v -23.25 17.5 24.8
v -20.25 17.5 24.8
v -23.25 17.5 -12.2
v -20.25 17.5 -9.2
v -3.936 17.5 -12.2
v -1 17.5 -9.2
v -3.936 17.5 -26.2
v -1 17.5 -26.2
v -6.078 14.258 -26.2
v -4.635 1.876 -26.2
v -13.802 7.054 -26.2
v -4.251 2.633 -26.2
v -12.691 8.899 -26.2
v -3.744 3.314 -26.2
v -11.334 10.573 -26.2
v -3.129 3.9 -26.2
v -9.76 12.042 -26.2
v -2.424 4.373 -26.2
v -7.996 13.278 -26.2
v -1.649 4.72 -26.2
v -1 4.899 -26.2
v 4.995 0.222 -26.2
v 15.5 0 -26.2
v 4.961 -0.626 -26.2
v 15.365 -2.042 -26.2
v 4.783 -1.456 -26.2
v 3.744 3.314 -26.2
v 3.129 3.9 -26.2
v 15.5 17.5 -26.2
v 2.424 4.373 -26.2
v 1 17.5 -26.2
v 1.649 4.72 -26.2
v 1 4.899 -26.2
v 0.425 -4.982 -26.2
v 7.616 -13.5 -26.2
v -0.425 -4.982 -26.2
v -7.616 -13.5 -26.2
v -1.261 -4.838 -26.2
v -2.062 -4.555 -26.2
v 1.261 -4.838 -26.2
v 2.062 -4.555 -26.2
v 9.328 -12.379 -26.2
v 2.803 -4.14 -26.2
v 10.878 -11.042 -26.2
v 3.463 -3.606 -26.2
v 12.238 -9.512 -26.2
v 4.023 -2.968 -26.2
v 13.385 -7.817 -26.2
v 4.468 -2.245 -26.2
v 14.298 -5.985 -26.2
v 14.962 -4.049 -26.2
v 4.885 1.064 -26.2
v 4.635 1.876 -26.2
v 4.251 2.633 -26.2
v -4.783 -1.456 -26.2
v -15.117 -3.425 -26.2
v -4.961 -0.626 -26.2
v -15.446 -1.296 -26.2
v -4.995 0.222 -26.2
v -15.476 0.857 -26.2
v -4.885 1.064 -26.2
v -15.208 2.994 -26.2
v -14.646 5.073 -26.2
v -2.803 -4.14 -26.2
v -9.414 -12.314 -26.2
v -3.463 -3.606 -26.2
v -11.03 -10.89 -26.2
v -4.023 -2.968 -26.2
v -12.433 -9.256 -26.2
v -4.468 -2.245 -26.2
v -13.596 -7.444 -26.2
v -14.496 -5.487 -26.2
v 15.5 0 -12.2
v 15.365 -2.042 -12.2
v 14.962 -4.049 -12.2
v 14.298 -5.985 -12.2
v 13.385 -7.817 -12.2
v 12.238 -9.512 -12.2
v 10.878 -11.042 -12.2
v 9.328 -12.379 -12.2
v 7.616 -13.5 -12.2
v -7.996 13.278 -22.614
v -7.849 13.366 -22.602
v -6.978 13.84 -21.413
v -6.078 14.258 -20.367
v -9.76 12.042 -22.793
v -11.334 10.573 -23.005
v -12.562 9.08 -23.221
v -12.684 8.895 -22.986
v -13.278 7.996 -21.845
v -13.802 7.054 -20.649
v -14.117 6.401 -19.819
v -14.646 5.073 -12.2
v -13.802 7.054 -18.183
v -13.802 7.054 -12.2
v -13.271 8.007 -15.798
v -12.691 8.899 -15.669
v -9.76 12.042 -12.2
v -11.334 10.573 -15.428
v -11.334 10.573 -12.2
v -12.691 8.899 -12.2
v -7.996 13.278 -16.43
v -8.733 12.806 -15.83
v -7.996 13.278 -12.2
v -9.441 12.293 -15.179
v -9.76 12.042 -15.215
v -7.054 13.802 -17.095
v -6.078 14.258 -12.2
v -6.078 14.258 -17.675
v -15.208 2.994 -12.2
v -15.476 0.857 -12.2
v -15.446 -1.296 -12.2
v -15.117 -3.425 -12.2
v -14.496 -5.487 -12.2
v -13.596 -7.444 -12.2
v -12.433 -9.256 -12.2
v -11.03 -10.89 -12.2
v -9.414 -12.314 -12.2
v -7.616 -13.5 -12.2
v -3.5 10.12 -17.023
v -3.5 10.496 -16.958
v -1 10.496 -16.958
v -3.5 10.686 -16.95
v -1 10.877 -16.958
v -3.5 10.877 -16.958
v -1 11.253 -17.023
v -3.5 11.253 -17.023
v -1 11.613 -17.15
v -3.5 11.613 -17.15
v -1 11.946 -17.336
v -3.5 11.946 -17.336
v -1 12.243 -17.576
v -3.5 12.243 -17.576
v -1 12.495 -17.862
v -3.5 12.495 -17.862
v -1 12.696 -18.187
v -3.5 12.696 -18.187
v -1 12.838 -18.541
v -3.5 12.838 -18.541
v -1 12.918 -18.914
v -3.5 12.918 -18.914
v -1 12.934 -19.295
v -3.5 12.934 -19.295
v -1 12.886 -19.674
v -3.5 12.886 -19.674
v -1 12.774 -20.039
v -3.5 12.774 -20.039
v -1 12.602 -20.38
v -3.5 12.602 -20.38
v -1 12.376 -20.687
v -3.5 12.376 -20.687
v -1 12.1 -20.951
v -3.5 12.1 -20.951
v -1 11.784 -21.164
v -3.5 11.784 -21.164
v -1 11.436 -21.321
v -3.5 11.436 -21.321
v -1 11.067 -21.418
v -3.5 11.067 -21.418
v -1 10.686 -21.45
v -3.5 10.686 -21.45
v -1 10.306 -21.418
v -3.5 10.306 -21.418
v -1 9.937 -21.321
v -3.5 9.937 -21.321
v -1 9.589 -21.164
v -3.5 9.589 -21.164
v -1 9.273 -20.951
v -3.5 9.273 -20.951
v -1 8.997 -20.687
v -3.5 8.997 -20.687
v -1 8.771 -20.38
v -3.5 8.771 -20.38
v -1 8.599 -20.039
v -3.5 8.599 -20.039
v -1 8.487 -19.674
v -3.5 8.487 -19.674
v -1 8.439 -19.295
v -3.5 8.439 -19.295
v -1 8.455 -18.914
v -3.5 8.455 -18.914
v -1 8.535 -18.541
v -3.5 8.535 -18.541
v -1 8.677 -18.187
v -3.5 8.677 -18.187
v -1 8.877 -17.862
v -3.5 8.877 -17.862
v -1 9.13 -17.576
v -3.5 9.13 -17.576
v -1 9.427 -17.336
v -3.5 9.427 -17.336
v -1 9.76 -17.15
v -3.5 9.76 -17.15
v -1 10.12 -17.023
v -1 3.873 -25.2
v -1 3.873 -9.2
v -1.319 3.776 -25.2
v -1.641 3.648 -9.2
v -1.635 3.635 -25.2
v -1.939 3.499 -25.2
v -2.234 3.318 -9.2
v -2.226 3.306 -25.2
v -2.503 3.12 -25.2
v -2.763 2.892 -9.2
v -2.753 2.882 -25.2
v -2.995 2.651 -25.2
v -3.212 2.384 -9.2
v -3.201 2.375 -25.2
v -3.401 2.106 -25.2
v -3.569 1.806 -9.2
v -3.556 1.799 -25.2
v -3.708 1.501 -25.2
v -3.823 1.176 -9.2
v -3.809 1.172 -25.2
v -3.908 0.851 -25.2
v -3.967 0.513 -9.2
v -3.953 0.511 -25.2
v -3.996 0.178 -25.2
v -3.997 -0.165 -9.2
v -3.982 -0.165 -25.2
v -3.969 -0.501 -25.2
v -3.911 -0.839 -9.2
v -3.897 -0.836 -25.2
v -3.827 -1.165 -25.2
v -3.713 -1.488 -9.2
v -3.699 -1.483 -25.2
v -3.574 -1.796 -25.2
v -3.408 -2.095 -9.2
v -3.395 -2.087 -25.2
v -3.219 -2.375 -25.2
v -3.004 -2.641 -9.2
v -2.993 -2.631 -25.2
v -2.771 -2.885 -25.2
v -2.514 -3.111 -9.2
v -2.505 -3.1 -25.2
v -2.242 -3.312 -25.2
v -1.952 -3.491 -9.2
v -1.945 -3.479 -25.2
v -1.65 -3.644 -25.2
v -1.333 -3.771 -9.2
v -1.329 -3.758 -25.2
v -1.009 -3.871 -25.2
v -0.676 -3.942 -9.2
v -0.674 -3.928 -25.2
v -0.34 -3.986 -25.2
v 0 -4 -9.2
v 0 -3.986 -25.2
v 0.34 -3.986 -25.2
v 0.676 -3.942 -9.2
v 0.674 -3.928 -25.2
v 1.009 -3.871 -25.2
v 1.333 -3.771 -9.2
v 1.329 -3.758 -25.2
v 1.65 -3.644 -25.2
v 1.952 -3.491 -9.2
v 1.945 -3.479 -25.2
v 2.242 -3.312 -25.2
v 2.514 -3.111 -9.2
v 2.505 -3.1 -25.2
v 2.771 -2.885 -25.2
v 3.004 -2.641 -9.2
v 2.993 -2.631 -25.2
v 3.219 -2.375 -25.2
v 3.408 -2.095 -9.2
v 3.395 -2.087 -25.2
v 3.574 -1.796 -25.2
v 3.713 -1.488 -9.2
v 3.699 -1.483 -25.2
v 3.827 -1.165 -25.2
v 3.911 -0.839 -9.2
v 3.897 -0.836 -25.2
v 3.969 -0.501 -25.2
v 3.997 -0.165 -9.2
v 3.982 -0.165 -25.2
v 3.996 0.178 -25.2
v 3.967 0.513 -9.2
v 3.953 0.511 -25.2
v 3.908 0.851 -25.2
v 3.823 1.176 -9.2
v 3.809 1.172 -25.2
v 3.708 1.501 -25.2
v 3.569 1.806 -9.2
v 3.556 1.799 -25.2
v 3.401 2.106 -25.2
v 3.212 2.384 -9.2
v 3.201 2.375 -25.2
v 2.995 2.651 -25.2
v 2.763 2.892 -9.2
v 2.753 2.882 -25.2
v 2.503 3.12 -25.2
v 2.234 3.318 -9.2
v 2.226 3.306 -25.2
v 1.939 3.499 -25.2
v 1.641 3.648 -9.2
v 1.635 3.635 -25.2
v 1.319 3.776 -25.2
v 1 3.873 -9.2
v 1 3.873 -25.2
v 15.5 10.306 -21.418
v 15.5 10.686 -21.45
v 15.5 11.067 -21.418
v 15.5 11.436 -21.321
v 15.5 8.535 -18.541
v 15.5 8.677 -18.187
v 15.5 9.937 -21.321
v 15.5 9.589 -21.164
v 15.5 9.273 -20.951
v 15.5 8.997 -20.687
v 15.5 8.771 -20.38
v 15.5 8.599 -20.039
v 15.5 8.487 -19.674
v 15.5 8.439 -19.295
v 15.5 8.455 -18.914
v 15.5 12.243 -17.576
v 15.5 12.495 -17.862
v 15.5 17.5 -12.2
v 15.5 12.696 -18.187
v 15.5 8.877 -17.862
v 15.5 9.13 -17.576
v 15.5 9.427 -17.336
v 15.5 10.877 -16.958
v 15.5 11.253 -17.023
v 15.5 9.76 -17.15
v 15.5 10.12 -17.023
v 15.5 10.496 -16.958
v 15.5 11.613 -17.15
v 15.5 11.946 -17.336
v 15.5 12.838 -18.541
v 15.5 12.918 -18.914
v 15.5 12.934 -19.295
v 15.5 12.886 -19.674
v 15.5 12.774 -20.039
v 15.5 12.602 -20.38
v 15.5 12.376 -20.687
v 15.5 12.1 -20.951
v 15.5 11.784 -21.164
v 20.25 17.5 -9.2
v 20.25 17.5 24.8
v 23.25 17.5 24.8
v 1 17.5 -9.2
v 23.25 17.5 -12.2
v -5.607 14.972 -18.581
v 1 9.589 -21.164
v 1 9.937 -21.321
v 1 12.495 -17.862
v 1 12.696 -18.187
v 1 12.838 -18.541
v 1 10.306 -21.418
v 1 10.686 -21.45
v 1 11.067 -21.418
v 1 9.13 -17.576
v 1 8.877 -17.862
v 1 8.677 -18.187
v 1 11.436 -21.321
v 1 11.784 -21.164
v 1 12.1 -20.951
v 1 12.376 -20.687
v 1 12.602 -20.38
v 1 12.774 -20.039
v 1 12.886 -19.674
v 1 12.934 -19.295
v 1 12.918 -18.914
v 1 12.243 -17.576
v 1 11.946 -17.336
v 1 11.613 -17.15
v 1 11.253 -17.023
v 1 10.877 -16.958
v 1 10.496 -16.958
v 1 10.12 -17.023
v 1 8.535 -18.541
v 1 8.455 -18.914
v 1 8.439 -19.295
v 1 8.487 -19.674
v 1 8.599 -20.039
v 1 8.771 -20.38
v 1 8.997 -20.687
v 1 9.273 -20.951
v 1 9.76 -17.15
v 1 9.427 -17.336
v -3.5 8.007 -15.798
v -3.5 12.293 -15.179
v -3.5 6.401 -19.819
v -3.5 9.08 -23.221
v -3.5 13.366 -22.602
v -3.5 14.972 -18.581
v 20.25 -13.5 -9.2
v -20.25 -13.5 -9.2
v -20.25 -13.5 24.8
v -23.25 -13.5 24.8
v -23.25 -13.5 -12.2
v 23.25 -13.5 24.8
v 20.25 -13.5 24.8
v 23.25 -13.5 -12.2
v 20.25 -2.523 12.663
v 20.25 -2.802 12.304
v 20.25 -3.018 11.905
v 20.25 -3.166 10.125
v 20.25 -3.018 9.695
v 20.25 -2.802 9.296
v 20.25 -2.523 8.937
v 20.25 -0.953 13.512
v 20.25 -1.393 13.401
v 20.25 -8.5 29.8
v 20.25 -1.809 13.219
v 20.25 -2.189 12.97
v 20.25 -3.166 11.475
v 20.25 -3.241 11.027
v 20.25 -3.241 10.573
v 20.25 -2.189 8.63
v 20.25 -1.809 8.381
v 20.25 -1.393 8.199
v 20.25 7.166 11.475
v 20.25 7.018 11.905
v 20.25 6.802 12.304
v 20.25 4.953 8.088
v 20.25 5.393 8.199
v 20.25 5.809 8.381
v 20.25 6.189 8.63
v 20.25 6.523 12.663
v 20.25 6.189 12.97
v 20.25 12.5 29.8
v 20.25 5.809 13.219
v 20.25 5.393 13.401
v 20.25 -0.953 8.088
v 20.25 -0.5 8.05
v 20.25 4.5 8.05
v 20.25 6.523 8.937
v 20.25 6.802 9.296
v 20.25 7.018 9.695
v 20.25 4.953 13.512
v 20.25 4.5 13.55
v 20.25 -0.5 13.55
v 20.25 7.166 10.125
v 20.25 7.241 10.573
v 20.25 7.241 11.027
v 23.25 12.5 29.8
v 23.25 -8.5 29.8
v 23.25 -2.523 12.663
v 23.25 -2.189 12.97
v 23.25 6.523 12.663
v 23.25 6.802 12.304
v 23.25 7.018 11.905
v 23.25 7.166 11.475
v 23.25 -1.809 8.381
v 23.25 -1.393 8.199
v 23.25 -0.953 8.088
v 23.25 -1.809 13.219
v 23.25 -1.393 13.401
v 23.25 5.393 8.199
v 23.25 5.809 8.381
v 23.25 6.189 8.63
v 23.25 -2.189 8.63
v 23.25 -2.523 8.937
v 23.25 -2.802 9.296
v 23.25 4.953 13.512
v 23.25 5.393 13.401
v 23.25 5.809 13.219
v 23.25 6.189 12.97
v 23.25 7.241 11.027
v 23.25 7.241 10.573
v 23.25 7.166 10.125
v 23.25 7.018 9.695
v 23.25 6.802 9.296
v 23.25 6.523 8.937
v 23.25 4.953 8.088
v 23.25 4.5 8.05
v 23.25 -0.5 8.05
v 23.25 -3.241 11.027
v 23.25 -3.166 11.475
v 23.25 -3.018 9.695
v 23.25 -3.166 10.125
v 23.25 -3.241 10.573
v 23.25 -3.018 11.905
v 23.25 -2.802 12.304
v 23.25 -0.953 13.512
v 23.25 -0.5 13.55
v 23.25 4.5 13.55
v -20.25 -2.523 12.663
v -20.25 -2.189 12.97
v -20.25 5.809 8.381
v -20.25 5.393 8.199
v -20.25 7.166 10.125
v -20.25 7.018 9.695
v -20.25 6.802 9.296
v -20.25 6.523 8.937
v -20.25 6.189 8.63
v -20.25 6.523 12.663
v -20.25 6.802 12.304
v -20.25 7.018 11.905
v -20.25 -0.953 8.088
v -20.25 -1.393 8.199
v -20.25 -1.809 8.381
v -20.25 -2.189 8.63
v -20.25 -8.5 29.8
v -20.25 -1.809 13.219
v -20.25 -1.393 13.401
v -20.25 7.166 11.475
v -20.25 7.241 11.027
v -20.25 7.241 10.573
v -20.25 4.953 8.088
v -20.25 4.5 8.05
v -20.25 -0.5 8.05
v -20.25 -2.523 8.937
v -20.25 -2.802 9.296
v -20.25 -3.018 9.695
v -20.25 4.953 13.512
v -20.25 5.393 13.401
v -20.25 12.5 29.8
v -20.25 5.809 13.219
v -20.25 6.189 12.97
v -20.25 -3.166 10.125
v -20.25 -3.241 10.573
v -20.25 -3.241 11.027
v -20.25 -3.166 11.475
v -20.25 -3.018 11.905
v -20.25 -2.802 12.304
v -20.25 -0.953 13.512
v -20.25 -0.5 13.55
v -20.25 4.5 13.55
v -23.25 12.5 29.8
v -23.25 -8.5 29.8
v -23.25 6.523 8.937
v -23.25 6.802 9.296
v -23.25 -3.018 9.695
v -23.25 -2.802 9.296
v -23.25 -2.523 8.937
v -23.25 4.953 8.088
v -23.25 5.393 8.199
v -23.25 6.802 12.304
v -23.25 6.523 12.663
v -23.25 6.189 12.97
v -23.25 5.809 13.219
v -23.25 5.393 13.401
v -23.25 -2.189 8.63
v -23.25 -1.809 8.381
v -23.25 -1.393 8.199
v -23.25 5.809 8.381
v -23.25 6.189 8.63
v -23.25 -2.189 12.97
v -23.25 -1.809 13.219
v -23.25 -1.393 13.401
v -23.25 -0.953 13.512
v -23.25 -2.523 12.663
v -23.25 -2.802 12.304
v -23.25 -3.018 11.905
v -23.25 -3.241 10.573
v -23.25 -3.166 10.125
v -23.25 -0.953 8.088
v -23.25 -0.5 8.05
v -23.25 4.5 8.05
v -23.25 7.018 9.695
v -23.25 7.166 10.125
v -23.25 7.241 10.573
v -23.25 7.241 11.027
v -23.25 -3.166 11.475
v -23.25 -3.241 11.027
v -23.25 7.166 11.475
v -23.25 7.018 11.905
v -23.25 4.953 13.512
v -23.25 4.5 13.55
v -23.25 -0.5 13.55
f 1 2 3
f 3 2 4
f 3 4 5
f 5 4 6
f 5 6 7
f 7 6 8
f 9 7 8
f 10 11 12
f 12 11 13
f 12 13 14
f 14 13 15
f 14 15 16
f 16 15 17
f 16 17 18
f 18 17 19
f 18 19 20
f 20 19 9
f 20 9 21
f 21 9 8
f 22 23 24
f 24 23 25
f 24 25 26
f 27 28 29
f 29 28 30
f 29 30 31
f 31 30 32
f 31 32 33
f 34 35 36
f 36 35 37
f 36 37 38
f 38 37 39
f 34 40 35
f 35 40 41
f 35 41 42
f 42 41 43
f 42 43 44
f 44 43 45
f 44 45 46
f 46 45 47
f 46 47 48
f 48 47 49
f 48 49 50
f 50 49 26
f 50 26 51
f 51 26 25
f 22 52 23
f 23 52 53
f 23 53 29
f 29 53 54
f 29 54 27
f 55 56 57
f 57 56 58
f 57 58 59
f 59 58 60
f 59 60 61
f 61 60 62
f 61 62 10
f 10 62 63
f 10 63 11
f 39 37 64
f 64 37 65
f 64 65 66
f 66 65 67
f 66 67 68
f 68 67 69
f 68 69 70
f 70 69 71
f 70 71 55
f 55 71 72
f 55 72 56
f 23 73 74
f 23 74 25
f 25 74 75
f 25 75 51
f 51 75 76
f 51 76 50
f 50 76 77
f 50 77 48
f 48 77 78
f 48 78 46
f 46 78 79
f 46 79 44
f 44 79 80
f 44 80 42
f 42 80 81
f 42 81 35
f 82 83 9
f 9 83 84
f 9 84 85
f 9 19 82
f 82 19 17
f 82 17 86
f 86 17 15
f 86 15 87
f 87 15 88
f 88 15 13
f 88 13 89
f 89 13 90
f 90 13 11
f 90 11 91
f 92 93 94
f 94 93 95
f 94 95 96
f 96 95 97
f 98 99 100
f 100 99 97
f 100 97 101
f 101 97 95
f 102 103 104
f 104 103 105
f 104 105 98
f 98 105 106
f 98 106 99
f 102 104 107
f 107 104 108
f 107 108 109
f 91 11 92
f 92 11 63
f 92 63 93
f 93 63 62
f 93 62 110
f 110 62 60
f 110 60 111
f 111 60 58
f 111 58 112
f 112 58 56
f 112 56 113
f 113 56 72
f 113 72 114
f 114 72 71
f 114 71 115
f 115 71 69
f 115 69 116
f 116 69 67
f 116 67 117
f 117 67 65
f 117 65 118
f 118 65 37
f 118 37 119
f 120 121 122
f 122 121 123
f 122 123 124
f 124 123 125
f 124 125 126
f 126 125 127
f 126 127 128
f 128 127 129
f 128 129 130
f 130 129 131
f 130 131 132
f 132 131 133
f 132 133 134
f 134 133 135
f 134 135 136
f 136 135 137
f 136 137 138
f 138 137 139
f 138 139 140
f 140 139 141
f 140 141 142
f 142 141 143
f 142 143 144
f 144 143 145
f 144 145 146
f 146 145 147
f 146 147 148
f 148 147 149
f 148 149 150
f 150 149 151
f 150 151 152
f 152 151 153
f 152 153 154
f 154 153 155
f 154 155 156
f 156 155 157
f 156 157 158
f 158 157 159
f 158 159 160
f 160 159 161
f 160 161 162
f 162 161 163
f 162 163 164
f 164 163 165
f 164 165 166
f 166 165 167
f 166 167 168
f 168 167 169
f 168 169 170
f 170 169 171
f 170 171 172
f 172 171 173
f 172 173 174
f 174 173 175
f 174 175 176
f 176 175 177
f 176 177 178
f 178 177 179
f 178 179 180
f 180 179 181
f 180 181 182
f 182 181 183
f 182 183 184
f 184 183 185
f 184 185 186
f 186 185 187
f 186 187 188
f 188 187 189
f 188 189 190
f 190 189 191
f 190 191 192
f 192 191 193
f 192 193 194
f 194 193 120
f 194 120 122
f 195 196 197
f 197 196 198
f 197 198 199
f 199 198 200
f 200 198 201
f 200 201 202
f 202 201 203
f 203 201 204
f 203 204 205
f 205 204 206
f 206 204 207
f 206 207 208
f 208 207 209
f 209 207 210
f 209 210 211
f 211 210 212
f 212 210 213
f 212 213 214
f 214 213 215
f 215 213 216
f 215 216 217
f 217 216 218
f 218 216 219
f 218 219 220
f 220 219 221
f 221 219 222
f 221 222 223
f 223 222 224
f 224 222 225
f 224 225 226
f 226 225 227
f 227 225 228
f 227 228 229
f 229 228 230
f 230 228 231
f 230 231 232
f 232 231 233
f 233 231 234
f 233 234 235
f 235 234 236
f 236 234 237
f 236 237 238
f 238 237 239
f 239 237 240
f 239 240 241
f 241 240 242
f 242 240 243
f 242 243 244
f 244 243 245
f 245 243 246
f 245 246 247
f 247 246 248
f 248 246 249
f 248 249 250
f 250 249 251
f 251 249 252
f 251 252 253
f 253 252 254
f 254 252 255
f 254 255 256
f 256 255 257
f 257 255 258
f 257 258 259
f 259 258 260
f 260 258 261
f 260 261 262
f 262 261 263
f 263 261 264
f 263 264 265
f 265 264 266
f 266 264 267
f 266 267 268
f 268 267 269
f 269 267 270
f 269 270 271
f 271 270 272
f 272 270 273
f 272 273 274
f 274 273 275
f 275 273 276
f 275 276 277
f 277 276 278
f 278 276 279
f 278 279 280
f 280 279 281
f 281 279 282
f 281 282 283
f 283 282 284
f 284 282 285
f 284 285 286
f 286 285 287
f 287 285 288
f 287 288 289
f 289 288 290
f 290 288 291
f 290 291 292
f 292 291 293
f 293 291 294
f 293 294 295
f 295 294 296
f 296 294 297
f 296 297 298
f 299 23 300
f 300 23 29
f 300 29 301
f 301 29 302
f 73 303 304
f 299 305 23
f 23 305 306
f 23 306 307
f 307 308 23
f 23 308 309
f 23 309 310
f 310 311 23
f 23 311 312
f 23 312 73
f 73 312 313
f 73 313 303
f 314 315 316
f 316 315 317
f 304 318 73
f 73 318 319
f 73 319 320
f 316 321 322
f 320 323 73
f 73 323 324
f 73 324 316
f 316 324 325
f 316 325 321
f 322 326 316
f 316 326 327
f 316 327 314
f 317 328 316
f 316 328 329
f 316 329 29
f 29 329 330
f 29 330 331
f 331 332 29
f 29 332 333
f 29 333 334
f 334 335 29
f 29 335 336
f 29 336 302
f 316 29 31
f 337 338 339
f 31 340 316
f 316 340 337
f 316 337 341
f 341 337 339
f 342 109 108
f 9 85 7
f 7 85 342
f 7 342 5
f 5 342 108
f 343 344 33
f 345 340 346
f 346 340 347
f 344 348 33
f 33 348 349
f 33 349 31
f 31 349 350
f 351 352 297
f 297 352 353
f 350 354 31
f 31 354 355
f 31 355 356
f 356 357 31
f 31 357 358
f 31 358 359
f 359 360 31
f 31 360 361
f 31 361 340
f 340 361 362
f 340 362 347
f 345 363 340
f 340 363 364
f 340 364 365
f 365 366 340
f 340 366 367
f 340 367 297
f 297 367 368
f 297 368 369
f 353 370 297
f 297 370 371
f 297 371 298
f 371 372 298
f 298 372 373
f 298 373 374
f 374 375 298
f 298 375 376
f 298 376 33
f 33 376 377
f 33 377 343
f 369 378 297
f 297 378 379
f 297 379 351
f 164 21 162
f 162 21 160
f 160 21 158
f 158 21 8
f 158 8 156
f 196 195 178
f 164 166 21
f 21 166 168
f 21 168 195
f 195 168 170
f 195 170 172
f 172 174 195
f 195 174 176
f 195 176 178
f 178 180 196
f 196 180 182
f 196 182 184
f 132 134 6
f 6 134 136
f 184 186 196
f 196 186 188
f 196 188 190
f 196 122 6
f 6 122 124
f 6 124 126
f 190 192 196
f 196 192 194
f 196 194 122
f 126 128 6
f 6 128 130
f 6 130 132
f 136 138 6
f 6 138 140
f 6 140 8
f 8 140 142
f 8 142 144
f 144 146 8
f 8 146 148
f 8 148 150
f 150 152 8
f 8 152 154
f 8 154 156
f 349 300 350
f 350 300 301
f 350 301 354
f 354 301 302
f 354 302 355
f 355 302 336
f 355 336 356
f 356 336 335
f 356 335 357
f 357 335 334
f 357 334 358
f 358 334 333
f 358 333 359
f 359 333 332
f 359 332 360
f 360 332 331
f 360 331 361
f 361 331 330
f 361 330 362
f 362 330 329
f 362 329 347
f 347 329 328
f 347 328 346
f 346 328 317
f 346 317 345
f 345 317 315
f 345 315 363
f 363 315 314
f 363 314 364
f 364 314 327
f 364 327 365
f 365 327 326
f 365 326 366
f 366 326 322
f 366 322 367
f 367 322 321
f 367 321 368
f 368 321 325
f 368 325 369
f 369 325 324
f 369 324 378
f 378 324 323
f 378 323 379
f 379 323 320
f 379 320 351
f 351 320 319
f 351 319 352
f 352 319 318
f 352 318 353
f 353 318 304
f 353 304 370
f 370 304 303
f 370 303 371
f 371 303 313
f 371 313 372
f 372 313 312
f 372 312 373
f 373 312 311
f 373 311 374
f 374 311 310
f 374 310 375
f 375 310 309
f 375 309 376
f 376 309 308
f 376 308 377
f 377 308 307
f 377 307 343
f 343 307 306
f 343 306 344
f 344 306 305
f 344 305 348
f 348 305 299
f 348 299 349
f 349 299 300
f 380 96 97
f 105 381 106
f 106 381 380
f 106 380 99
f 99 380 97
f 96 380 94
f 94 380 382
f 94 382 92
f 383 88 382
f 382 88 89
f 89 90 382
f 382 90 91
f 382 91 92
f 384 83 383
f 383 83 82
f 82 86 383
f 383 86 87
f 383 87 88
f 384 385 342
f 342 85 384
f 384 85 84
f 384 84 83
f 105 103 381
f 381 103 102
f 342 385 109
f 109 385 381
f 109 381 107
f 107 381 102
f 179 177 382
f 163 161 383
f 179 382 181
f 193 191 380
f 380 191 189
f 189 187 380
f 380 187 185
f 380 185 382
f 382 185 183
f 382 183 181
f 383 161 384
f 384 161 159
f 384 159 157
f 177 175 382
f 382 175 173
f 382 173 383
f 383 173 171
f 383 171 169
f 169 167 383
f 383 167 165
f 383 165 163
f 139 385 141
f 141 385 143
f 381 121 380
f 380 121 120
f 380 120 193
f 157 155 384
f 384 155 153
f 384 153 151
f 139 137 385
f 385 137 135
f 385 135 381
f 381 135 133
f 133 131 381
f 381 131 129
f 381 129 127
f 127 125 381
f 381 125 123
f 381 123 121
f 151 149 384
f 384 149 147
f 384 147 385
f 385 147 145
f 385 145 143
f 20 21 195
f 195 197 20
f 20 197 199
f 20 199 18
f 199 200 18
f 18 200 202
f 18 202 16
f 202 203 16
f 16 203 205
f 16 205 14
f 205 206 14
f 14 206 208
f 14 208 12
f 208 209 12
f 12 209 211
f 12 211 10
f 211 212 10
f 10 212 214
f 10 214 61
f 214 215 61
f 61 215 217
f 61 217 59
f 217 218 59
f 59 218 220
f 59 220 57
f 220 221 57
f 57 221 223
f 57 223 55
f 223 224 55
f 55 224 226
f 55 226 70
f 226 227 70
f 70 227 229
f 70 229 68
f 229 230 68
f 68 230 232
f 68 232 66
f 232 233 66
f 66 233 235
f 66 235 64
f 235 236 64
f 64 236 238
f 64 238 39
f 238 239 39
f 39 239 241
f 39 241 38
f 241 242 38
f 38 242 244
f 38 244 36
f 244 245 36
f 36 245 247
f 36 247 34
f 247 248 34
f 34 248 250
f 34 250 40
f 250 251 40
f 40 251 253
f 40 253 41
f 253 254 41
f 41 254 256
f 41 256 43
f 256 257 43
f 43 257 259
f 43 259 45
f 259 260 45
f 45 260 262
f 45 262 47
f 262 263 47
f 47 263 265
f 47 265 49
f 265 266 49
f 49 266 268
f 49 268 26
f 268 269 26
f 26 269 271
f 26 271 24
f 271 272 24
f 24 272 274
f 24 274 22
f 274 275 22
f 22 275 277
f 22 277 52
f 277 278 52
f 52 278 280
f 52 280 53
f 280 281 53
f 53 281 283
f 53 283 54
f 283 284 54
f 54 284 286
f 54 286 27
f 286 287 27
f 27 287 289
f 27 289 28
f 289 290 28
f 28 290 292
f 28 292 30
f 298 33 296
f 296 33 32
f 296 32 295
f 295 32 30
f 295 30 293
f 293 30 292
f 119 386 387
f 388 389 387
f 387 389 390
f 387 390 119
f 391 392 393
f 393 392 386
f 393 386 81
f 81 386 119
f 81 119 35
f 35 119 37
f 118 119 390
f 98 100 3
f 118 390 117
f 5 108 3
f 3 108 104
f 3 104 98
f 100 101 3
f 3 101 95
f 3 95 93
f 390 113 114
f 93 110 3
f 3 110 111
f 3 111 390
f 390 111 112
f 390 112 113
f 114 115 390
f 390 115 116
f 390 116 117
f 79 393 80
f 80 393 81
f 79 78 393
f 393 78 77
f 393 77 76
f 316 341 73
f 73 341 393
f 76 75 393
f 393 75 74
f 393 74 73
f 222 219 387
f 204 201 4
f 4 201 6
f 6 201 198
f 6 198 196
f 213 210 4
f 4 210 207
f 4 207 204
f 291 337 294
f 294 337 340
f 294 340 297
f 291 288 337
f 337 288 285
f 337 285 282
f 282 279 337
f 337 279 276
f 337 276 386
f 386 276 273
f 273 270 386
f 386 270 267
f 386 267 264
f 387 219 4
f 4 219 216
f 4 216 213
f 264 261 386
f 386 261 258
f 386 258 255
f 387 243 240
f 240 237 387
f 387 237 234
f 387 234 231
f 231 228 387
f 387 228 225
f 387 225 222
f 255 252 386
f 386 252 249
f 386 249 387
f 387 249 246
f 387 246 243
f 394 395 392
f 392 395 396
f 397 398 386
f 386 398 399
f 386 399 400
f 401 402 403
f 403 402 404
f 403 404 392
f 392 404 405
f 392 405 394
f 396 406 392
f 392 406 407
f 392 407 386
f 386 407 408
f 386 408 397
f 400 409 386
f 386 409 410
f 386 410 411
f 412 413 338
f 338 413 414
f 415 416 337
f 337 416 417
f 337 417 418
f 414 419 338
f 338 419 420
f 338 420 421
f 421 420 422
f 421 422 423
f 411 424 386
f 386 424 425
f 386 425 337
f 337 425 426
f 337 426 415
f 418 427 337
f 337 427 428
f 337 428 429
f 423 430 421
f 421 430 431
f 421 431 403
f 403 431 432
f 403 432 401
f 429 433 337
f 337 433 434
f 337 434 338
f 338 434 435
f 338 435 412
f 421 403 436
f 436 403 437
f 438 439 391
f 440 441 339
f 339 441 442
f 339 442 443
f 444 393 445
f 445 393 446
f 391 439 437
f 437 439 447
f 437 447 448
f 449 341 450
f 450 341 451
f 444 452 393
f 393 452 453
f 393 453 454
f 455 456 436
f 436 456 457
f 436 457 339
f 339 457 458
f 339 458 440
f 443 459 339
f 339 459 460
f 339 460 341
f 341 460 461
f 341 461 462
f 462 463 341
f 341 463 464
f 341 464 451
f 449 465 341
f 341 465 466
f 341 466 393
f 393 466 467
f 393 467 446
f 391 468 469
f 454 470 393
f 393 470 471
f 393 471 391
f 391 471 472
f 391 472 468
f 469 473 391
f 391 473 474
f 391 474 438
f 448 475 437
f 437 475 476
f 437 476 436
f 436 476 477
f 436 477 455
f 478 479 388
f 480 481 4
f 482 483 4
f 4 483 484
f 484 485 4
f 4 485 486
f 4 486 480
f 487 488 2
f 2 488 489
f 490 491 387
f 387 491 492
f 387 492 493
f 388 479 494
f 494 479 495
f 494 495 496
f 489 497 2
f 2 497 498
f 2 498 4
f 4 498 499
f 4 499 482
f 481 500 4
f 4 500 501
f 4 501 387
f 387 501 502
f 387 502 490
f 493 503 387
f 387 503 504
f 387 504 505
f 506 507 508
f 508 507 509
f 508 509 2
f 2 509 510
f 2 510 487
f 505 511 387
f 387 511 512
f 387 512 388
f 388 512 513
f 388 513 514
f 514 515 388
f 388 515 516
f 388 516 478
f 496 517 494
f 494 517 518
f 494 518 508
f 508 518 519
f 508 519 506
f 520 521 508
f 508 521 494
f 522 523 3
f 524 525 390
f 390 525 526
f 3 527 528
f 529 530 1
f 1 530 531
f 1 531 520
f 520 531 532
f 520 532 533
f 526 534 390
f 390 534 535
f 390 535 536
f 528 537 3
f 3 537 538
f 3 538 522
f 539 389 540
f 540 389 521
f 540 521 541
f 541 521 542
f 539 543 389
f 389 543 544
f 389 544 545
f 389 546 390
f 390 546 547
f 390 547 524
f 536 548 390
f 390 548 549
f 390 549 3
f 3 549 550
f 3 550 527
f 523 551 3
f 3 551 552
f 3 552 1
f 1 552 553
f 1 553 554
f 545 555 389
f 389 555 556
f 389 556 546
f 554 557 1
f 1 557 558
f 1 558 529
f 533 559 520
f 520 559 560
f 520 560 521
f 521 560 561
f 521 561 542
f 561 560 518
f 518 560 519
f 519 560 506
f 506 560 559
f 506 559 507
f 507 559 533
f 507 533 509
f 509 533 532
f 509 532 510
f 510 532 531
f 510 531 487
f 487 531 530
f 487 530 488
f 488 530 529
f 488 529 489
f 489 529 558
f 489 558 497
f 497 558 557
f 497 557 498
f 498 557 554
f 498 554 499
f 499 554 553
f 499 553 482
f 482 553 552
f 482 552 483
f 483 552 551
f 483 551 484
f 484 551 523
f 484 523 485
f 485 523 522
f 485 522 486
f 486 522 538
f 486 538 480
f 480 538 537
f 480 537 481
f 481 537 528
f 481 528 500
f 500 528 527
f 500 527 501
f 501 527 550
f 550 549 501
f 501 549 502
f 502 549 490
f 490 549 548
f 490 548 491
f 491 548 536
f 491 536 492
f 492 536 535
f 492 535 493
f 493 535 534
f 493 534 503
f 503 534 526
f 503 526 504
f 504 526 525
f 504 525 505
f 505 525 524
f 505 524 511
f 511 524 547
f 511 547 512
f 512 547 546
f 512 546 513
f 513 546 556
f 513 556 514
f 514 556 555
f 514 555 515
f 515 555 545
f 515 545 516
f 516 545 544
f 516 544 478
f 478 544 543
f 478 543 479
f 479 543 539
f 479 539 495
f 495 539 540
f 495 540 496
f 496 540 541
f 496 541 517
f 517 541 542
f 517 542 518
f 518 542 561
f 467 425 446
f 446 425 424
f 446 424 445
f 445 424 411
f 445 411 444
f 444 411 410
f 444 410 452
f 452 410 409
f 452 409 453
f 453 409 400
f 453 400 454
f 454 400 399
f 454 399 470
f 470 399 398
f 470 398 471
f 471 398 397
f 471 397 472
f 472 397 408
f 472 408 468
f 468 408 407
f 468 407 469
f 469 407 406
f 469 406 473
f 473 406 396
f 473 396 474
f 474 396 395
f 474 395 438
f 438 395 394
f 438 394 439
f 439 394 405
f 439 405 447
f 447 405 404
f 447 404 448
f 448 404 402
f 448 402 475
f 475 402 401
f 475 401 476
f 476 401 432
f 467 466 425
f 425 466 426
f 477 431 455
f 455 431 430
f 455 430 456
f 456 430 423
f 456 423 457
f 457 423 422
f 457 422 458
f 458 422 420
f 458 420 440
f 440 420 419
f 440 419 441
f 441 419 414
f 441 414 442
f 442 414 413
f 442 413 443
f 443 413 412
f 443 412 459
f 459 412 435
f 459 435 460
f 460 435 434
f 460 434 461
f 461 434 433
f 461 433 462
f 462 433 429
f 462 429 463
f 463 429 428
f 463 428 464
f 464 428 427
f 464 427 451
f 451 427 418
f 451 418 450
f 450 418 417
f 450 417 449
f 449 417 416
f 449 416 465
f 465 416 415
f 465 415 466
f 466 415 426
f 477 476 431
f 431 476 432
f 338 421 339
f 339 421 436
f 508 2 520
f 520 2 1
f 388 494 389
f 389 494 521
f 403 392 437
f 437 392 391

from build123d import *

# Parameters (mm, degrees)
SKETCH1_R                    = 4
SKETCH1_R_2                  = 2.249999999999999
BOSS_EXTRUDE1_DEPTH          = 24
SKETCH2_R                    = 2.2499999999999956
SKETCH2_R_2                  = 4
BOSS_EXTRUDE2_DEPTH          = 24
CUT_EXTRUDE1_DEPTH           = 14
CUT_EXTRUDE2_START           = -14
CUT_EXTRUDE2_DEPTH           = 14
BOSS_EXTRUDE3_DEPTH          = 2
CUT_EXTRUDE_THIN1_DEPTH      = 70.97528134991671
CUT_EXTRUDE_THIN1_DEPTH_BACK = 53.00000000000001
SKETCH6_W                    = 2
SKETCH6_H                    = 35.40537681916631
SKETCH7_R                    = 2.249999999999999
CUT_EXTRUDE3_DEPTH           = 55.524673314014464
CUT_EXTRUDE4_DEPTH           = 41.99999999999999
CHAMFER2_SIZE                = 1
SKETCH9_R                    = 45.63024731549585
CUT_EXTRUDE5_DEPTH           = 2
SKETCH10_R                   = 89.28313808685371
CUT_EXTRUDE6_DEPTH           = 57.00000000000001
BOSS_EXTRUDE5_START          = 3
SKETCH11_R                   = 3.9999999999999925
BOSS_EXTRUDE5_DEPTH          = 3
BOSS_EXTRUDE6_DEPTH          = 3
BOSS_EXTRUDE7_DEPTH          = 3
CUT_EXTRUDE7_DEPTH           = 56.55663776723714
CUT_EXTRUDE7_DEPTH_BACK      = 56.55663776723714
CUT_EXTRUDE8_START           = -18.000000000000004
CUT_EXTRUDE8_DEPTH           = 18.000000000000004
CHAMFER4_SIZE                = 5


with BuildPart() as part:
    # Sketch1 → Boss-Extrude1 (new body)
    with BuildSketch(Plane.XY):
        with BuildLine():
            Line((0, 15.5), (-30, 15.5))
            Line((-30, 15.5), (-45.50000000000001, 15.499999999999995))
            Line((-45.50000000000001, 15.499999999999995), (-45.5, 1.9e-15))
            ThreePointArc((-45.5, 1.9e-15), (-40.96015510839149, -10.960155108391486), (-30, -15.499999999999996))
            Line((-30, -15.499999999999996), (0, -15.5))
            ThreePointArc((0, -15.5), (10.960155108391488, -10.960155108391486), (15.5, 0))
            Line((15.5, 0), (15.5, 15.5))
            Line((15.5, 15.5), (0, 15.5))
        make_face()
        Circle(SKETCH1_R, mode=Mode.SUBTRACT)
        with Locations((-30, 0)):
            Circle(SKETCH1_R_2, mode=Mode.SUBTRACT)
    extrude(amount=BOSS_EXTRUDE1_DEPTH)

    # Sketch4 → Cut-Extrude2 (cut)
    with BuildSketch(Plane.XY.offset(24).offset(CUT_EXTRUDE2_START)):
        with BuildLine():
            Line((-1.32e-15, 15.499999999999998), (-45.50000000000001, 15.499999999999995))
            Line((-45.50000000000001, 15.499999999999995), (-45.5, 1.9e-15))
            ThreePointArc((-45.5, 1.9e-15), (-40.96015510839149, -10.960155108391486), (-30.000000000000004, -15.5))
            Line((-30.000000000000004, -15.5), (0, -15.5))
            ThreePointArc((0, -15.5), (-15.499999999999998, 1.9e-15), (-1.32e-15, 15.499999999999998))
        make_face()
    extrude(amount=CUT_EXTRUDE2_DEPTH, mode=Mode.SUBTRACT)



with BuildPart() as body_2:
    # Sketch2 → Boss-Extrude2 (new body)
    with BuildSketch(Plane(origin=(0, 0, -2.2), x_dir=(-1, 0, 0), z_dir=(0, 0, -1))):
        with BuildLine():
            Line((-2.85e-15, -15.5), (30.000000000000004, -15.499999999999998))
            ThreePointArc((30.000000000000004, -15.499999999999998), (40.96015510839149, -10.960155108391485), (45.5, 0))
            Line((45.5, 0), (45.50000000000001, 15.499999999999995))
            Line((45.50000000000001, 15.499999999999995), (-15.5, 15.5))
            Line((-15.5, 15.5), (-15.5, 1.73e-15))
            ThreePointArc((-15.5, 1.73e-15), (-10.96015510839149, -10.960155108391486), (-2.85e-15, -15.5))
        make_face()
        with Locations((30, 0)):
            Circle(SKETCH2_R, mode=Mode.SUBTRACT)
        Circle(SKETCH2_R_2, mode=Mode.SUBTRACT)
    extrude(amount=BOSS_EXTRUDE2_DEPTH)

    # Sketch3 → Cut-Extrude1 (cut)
    with BuildSketch(Plane(origin=(0, 0, -26.200000000000003), x_dir=(-1, 0, 0), z_dir=(0, 0, -1))):
        with BuildLine():
            Line((-2.85e-15, -15.5), (30.000000000000004, -15.499999999999998))
            ThreePointArc((30.000000000000004, -15.499999999999998), (40.96015510839149, -10.960155108391485), (45.5, 0))
            Line((45.5, 0), (45.50000000000001, 15.499999999999995))
            Line((45.50000000000001, 15.499999999999995), (1.32e-15, 15.499999999999998))
            ThreePointArc((1.32e-15, 15.499999999999998), (15.5, -3.44e-15), (-2.85e-15, -15.5))
        make_face()
    extrude(amount=-CUT_EXTRUDE1_DEPTH, mode=Mode.SUBTRACT)


with BuildPart() as part_1:
    add(part.part)

    add(body_2.part)  # Boss-Extrude3 merges body 2
    # Sketch5 → Boss-Extrude3 (add)
    with BuildSketch(Plane(origin=(-1.32e-15, 15.499999999999998, 0), x_dir=(1, 1.1e-16, 0), z_dir=(-1.1e-16, 1, 0))):
        Polygon((-45.50000000000001, 12.200000000000001), (1.77e-15, 12.200000000000001), (0, 26.200000000000003), (15.500000000000002, 26.200000000000003), (15.500000000000002, -24), (0, -24), (1.77e-15, -10), (-45.50000000000001, -10), (-45.50000000000001, 0), (-38.50000000000001, 0), (-38.50000000000001, 2.200000000000001), (-45.50000000000001, 2.2), align=None)
    extrude(amount=BOSS_EXTRUDE3_DEPTH)

    # Chamfer1
    # the kernel refuses this chamfer: 10 mm, written as the material it adds along each edge
    with BuildSketch(Plane(origin=(-3.72e-15, 15.5, 10), x_dir=(0.026587242345483465, 0.9996464967899715, 0), z_dir=(0, 0, 1))) as chamfer1_piece_1_section:
        with BuildLine():
            Line((8.29406545002713, 1e-17), (-1.7422154358514688, 6.254838102034438))
            Line((-1.7422154358514688, 6.254838102034438), (-1.9240447967842007, 6.17154294309471))
            ThreePointArc((-1.9240447967842007, 6.17154294309471), (-0.6239231337177482, 3.187248798266774), (-0.19992929935799358, -0.00531744846909673))
            Line((-0.19992929935799358, -0.00531744846909673), (0.00531744846909669, -0.1999292993579943))
            ThreePointArc((0.00531744846909669, -0.1999292993579943), (4.149418712953845, -0.08971011189834381), (8.299382898496228, -0.19992929935799428))
            Line((8.299382898496228, -0.19992929935799428), (8.29406545002713, 1e-17))
        make_face()
    chamfer1_piece_1 = extrude(amount=14, mode=Mode.PRIVATE)
    chamfer1_piece_1 = split(chamfer1_piece_1, bisect_by=Plane(origin=(-2.6872969980278754, 17.5, 17.000000000000004), z_dir=(1.1e-16, -1, 0)), keep=Keep.TOP, mode=Mode.PRIVATE)
    add(chamfer1_piece_1)
    with BuildSketch(Plane(origin=(-1.32e-15, 15.5, -26.200000000000003), x_dir=(-0.9701220678115945, -0.24261733974503139, 0), z_dir=(0, 0, 1))) as chamfer1_piece_2_section:
        with BuildLine():
            Line((6.4929434240243395, 9e-17), (-2.2255005025199233, -7.9899104627409505))
            Line((-2.2255005025199233, -7.9899104627409505), (-2.419524916082242, -7.941386994791944))
            ThreePointArc((-2.419524916082242, -7.941386994791944), (-1.1998107866971348, -3.973182305874418), (-0.19402441356231892, 0.04852346794900628))
            Line((-0.19402441356231892, 0.04852346794900628), (0.0485234679490061, 0.1940244135623182))
            ThreePointArc((0.0485234679490061, 0.1940244135623182), (3.237781752513792, -0.25417376326036684), (6.461492077353489, 0.19751155103585727))
            Line((6.461492077353489, 0.19751155103585727), (6.4929434240243395, 9e-17))
        make_face()
    chamfer1_piece_2 = extrude(amount=14, mode=Mode.PRIVATE)
    chamfer1_piece_2 = split(chamfer1_piece_2, bisect_by=Plane(origin=(-2.687296998027888, 17.5, -19.200000000000006), z_dir=(1.1e-16, -1, 0)), keep=Keep.TOP, mode=Mode.PRIVATE)
    add(chamfer1_piece_2)

    # Sketch6 → Cut-Extrude-Thin1 (cut, two sides: drawn at the far end of the back side and taken through both)
    with BuildSketch(Plane(origin=(0, 0, -26.200000000000003), x_dir=(-1, 0, 0), z_dir=(0, 0, -1)).offset(-CUT_EXTRUDE_THIN1_DEPTH_BACK)):
        with Locations((0, 17.702688409583153)):
            Rectangle(SKETCH6_W, SKETCH6_H)
    extrude(amount=CUT_EXTRUDE_THIN1_DEPTH + CUT_EXTRUDE_THIN1_DEPTH_BACK, mode=Mode.SUBTRACT)

    # Sketch7 → Cut-Extrude3 (cut, symmetric)
    with BuildSketch(Plane(origin=(-1, 0, 0), x_dir=(0, 0, -1), z_dir=(1, 0, 0))):
        with Locations((19.200000000000006, 10.686491673103705)):
            Circle(SKETCH7_R)
    cut_extrude3 = extrude(amount=CUT_EXTRUDE3_DEPTH, both=True, mode=Mode.SUBTRACT)

    # Mirror1: Cut-Extrude3 across plane
    add(cut_extrude3.mirror(Plane(origin=(0, 0, -1.1000000000000003), x_dir=(1, 0, 0), z_dir=(0, 0, -1))), mode=Mode.SUBTRACT)

    # Sketch8 → Cut-Extrude4 (cut)
    with BuildSketch(Plane.ZY.offset(45.50000000000001)):
        Polygon((-15.1788975572378, 12.292958337809747), (-18.58068972058721, 14.97210187210845), (-22.60179216334942, 13.365635207402391), (-23.221102442762213, 9.080025008397632), (-19.8193102794128, 6.4008814740989255), (-15.798207836650597, 8.007348138804984), align=None)
        Polygon((12.978897557237794, 12.292958337809734), (13.598207836650598, 8.007348138804979), (17.61931027941281, 6.400881474098927), (21.02110244276222, 9.080025008397646), (20.401792163349413, 13.365635207402406), (16.38068972058721, 14.972101872108457), align=None)
    extrude(amount=-CUT_EXTRUDE4_DEPTH, mode=Mode.SUBTRACT)

    # Chamfer2
    chamfer2_edges = [part_1.edges().sort_by_distance(p)[0] for p in [
        (-2.449489742783177, -3.1622776601683804, 24),
        (-1.22e-15, -4, -26.2),
    ]]
    chamfer(chamfer2_edges, length=CHAMFER2_SIZE)

    # Sketch9 → Cut-Extrude5 (cut)
    with BuildSketch(Plane(origin=(-1.79e-15, -15.5, 0), x_dir=(-1, 1.2e-16, 0), z_dir=(-1.2e-16, -1, 0))):
        with Locations((14.602356379640469, -2.8500724208981865)):
            Circle(SKETCH9_R)
    extrude(amount=-CUT_EXTRUDE5_DEPTH, mode=Mode.SUBTRACT)

    # Sketch10 → Cut-Extrude6 (cut)
    with BuildSketch(Plane(origin=(0, 0, -12.200000000000001), x_dir=(-1, 0, 0), z_dir=(0, 0, -1))):
        with Locations((18.92287737663878, -1.4489467579892334)):
            Circle(SKETCH10_R)
    extrude(amount=-CUT_EXTRUDE6_DEPTH, mode=Mode.SUBTRACT)

    # Sketch11 → Boss-Extrude5 (add)
    with BuildSketch(Plane.XY.offset(-12.200000000000001).offset(BOSS_EXTRUDE5_START)):
        Polygon((-20.25, 17.499999999999996), (20.250000000000004, 17.499999999999996), (20.250000000000007, -13.499999999999998), (-20.249999999999993, -13.499999999999998), align=None)
        Circle(SKETCH11_R, mode=Mode.SUBTRACT)
    extrude(amount=-BOSS_EXTRUDE5_DEPTH)

    # Sketch13 → Boss-Extrude6 (add)
    with BuildSketch(Plane(origin=(20.250000000000007, 2.27e-15, 0), x_dir=(0, 0, -1), z_dir=(1, 1.1e-16, 0))):
        Polygon((12.200000000000001, 17.499999999999993), (-29.8, 17.499999999999993), (-29.8, -13.500000000000002), (12.200000000000005, -13.500000000000002), align=None)
    extrude(amount=BOSS_EXTRUDE6_DEPTH)

    # Sketch14 → Boss-Extrude7 (add)
    with BuildSketch(Plane.ZY.offset(20.249999999999996)):
        Polygon((-12.200000000000001, -13.499999999999993), (29.8, -13.499999999999993), (29.8, 17.499999999999996), (-12.200000000000001, 17.5), align=None)
    extrude(amount=BOSS_EXTRUDE7_DEPTH)

    # Sketch15 → Cut-Extrude7 (cut, two sides: drawn at the far end of the back side and taken through both)
    with BuildSketch(Plane.ZY.offset(-20.250000000000007).offset(-CUT_EXTRUDE7_DEPTH_BACK)):
        with BuildLine():
            Line((8.05, -0.5000000000000039), (8.05, 4.499999999999997))
            ThreePointArc((8.05, 4.499999999999997), (10.8, 7.249999999999999), (13.550000000000002, 4.499999999999997))
            Line((13.550000000000002, 4.499999999999997), (13.55, -0.5000000000000034))
            ThreePointArc((13.55, -0.5000000000000034), (10.8, -3.2500000000000036), (8.05, -0.5000000000000039))
        make_face()
    extrude(amount=CUT_EXTRUDE7_DEPTH + CUT_EXTRUDE7_DEPTH_BACK, mode=Mode.SUBTRACT)

    # Sketch16 → Cut-Extrude8 (cut)
    with BuildSketch(Plane(origin=(0, 0, -12.200000000000001), x_dir=(-1, 0, 0), z_dir=(0, 0, -1)).offset(CUT_EXTRUDE8_START)):
        with BuildLine():
            Line((-1, 17.499999999999996), (-1, 3.8729833462074166))
            ThreePointArc((-1, 3.8729833462074166), (-4.8e-16, 4), (0.9999999999999991, 3.8729833462074157))
            Line((0.9999999999999991, 3.8729833462074157), (1.0000000000000009, 17.499999999999996))
            Line((1.0000000000000009, 17.499999999999996), (-1, 17.499999999999996))
        make_face()
    extrude(amount=CUT_EXTRUDE8_DEPTH, mode=Mode.SUBTRACT)

    # Chamfer4
    chamfer4_edges = [part_1.edges().sort_by_distance(p)[0] for p in [
        (21.750000000000004, 17.499999999999996, 29.8),
        (21.750000000000007, -13.5, 29.8),
        (-21.749999999999993, -13.499999999999998, 29.8),
        (-21.75, 17.499999999999993, 29.8),
    ]]
    chamfer(chamfer4_edges, length=CHAMFER4_SIZE)


solid = part_1.part
